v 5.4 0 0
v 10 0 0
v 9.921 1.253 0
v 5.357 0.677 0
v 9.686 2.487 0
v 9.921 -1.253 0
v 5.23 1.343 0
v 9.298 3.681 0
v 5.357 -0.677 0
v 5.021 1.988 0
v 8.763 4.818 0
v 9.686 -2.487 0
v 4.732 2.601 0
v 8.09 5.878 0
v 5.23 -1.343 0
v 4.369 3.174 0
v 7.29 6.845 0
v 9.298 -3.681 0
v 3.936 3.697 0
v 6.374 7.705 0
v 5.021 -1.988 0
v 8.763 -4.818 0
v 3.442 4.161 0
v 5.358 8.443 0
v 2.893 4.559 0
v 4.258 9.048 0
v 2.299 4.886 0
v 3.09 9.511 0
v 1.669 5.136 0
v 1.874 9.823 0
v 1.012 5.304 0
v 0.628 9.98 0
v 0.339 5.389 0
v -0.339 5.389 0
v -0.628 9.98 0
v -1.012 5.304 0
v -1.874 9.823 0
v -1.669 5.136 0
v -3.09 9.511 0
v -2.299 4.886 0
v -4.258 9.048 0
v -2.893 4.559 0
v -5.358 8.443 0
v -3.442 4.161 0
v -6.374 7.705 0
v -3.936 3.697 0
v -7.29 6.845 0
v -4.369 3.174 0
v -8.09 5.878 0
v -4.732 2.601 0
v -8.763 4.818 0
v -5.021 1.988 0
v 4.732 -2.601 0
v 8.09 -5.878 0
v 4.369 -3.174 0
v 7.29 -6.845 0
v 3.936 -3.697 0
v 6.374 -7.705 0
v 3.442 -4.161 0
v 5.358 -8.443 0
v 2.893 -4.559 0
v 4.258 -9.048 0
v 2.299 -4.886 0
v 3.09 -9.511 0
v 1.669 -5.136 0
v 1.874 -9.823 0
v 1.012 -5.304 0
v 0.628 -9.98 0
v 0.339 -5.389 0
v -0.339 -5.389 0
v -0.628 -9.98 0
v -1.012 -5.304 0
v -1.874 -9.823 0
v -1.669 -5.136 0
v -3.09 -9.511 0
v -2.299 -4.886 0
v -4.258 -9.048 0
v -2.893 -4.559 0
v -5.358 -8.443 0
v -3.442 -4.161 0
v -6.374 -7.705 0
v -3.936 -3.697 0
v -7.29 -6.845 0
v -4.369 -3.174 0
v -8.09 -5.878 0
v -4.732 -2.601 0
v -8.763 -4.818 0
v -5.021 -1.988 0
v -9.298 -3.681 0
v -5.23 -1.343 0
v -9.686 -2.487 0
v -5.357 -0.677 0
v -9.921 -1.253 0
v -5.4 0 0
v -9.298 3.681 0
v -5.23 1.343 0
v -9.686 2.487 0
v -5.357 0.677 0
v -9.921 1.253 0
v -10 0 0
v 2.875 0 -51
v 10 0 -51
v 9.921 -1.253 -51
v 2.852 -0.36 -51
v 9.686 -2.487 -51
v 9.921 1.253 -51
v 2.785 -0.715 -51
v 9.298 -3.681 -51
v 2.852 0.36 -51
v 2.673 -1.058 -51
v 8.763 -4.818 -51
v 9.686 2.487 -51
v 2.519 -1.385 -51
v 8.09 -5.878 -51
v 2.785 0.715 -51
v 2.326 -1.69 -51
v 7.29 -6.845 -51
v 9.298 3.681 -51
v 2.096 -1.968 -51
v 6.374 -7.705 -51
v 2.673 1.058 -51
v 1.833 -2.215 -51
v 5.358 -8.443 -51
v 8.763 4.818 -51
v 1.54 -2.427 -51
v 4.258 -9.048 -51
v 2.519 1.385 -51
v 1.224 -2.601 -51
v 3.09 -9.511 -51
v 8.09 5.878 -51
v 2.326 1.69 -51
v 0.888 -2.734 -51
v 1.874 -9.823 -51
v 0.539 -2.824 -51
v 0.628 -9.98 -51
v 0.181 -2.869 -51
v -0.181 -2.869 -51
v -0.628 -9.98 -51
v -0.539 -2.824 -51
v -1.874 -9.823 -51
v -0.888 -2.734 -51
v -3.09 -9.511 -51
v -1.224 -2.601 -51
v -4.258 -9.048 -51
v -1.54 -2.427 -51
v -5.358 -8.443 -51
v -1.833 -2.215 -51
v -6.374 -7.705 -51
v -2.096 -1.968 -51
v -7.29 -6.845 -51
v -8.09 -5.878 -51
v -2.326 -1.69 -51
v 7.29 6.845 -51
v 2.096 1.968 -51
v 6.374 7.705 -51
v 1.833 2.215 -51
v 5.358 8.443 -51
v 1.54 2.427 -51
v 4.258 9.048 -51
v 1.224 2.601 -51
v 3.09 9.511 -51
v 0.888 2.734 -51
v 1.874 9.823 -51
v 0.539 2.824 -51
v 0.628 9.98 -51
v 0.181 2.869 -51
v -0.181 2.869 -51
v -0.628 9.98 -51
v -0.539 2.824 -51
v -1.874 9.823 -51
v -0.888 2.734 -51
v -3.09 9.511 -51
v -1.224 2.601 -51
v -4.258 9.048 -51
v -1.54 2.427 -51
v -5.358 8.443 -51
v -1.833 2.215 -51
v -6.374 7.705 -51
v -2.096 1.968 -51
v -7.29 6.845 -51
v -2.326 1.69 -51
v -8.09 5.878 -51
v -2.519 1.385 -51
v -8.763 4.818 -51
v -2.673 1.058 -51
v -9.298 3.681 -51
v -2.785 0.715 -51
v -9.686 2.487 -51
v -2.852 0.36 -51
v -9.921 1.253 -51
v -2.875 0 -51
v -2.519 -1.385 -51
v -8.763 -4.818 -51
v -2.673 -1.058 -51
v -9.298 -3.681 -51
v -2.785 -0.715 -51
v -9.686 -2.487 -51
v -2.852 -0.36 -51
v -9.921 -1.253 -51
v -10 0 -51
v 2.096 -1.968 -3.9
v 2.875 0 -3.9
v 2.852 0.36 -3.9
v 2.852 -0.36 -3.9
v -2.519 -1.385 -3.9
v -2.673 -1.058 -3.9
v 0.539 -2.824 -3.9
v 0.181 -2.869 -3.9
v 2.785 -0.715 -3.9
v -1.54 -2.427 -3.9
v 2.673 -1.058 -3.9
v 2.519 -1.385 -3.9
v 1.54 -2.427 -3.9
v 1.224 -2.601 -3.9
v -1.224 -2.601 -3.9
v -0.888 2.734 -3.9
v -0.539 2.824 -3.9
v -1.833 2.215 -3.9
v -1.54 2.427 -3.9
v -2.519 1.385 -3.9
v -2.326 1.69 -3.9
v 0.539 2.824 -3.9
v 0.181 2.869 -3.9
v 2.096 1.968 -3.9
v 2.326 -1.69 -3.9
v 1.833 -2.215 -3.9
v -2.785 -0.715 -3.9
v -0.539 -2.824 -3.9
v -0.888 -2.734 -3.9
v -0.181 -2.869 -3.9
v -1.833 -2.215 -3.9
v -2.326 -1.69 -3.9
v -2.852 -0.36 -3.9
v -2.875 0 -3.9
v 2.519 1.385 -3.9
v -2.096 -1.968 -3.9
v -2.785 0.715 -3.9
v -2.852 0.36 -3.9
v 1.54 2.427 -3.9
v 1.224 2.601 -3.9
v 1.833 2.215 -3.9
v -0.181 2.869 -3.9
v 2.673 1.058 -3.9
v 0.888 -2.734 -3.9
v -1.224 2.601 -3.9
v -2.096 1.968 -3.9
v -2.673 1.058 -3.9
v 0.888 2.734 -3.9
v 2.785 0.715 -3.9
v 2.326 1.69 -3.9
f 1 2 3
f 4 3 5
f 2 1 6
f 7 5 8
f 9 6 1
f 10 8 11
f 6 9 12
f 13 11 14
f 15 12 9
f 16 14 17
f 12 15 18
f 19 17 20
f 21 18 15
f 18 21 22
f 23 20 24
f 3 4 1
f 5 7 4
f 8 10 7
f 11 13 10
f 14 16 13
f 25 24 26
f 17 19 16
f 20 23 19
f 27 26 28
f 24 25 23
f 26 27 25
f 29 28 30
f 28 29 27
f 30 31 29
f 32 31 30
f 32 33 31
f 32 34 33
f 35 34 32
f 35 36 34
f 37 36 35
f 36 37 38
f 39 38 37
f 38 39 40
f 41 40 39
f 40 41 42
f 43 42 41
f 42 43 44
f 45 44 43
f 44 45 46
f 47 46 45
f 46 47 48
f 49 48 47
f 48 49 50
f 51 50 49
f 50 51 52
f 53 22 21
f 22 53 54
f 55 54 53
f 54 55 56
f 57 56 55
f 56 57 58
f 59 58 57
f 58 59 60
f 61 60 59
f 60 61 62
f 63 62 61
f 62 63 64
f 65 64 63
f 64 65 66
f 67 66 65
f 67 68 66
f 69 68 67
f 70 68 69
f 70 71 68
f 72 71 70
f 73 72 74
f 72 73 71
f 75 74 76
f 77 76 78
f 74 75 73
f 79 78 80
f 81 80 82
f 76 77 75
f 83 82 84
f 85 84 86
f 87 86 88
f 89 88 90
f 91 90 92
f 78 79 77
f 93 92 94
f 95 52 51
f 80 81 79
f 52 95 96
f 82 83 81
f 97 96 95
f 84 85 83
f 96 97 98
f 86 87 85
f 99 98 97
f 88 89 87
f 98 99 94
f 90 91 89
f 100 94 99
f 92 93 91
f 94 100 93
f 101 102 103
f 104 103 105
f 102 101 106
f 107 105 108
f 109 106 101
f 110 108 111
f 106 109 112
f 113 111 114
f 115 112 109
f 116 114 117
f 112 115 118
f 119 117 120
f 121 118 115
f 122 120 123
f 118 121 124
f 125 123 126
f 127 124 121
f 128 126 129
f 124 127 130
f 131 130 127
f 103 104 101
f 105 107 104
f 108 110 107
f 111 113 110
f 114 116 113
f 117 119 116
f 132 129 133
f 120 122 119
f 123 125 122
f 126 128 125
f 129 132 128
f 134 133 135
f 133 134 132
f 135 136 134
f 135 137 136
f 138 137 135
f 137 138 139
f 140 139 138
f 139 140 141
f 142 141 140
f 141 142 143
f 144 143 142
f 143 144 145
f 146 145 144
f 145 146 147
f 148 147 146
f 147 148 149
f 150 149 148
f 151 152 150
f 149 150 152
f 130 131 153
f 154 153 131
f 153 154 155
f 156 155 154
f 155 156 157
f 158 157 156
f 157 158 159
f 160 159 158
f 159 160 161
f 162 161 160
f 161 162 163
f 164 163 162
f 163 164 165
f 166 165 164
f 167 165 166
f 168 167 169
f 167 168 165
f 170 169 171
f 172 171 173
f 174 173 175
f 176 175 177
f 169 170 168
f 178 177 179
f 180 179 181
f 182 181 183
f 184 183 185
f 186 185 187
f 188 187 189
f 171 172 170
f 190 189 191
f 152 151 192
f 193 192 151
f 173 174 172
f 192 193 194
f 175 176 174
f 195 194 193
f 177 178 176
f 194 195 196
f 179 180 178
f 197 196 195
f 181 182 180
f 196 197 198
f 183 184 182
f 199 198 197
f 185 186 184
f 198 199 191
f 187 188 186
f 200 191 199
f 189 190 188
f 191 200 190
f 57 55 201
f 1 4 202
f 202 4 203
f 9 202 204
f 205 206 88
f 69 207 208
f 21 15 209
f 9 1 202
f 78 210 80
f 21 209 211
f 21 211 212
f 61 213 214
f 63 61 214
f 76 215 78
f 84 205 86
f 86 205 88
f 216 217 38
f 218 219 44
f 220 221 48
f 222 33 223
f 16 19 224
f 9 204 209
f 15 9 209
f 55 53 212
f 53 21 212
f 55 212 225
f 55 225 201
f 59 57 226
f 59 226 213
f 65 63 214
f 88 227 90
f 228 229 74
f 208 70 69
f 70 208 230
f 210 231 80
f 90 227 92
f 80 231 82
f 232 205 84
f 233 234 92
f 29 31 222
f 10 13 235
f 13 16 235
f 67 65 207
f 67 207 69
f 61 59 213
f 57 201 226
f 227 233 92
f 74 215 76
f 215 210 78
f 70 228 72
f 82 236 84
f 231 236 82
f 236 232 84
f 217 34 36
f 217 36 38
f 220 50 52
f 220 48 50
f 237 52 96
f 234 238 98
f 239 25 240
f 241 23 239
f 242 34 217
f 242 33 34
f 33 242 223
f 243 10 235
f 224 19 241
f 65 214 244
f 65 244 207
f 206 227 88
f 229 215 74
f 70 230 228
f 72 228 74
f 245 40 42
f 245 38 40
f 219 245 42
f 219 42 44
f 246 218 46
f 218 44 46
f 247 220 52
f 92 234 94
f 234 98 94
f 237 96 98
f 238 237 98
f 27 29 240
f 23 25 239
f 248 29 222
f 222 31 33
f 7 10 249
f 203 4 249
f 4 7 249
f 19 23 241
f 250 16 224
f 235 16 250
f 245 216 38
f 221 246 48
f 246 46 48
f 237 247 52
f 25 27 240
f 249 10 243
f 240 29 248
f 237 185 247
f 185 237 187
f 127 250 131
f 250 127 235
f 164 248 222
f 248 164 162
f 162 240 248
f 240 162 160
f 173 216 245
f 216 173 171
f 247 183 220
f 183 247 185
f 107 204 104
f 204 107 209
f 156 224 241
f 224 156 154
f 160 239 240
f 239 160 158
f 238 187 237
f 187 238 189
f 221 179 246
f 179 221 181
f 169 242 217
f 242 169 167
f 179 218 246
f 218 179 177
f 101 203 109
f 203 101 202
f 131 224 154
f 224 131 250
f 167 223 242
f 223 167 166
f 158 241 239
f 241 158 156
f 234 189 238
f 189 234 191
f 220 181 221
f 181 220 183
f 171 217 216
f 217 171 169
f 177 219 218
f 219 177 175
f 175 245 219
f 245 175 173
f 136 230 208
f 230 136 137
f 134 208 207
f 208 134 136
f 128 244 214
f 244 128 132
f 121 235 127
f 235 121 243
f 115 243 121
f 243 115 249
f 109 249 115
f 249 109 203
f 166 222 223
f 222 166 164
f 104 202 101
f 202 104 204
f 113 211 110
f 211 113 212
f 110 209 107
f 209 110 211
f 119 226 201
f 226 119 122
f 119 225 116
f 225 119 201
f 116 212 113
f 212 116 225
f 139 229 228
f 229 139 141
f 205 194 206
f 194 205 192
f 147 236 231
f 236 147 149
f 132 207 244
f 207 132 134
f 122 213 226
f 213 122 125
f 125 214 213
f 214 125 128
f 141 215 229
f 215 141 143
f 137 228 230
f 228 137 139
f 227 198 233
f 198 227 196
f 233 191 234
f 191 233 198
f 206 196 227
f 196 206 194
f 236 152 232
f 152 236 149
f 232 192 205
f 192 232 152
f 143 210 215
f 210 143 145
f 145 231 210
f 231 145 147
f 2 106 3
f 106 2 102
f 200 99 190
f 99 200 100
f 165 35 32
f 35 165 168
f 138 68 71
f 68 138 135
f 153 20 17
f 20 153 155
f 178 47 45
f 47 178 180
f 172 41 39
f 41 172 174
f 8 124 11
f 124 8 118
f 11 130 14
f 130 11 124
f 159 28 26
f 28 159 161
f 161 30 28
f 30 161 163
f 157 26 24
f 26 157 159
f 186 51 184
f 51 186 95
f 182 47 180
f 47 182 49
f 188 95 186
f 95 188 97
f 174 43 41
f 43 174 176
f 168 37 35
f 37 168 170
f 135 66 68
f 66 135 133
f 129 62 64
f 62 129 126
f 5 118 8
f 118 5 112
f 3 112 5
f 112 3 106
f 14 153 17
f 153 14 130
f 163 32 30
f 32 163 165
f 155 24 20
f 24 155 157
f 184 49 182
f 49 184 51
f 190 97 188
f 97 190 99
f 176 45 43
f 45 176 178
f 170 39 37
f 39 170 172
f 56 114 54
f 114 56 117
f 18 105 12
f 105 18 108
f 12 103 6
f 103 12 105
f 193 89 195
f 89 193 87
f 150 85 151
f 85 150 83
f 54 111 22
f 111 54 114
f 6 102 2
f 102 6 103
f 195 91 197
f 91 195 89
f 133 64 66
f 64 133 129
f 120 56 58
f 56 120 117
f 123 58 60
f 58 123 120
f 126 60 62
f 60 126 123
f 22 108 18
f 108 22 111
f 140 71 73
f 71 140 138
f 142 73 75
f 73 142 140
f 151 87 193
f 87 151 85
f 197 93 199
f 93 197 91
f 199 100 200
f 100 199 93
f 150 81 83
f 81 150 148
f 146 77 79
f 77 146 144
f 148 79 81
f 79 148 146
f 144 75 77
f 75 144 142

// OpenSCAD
$fn = 50;


difference() {
	union() {
		translate(v = [0, 0, -51.0000000000]) {
			cylinder(h = 51, r = 10.0000000000);
		}
		cylinder(h = 0, r = 19.0000000000);
	}
	union() {
		translate(v = [0, 0, 0]) {
			rotate(a = [0, 0, 0]) {
				difference() {
					union() {
						#translate(v = [0, 0, -51.0000000000]) {
							cylinder(h = 51, r = 2.6000000000);
						}
						#translate(v = [0, 0, -3.9000000000]) {
							cylinder(h = 3.9000000000, r1 = 2.8750000000, r2 = 5.4000000000);
						}
						#translate(v = [0, 0, -51.0000000000]) {
							cylinder(h = 51, r = 2.8750000000);
						}
						#translate(v = [0, 0, -51.0000000000]) {
							cylinder(h = 51, r = 2.6000000000);
						}
					}
					union();
				}
			}
		}
	}
}
